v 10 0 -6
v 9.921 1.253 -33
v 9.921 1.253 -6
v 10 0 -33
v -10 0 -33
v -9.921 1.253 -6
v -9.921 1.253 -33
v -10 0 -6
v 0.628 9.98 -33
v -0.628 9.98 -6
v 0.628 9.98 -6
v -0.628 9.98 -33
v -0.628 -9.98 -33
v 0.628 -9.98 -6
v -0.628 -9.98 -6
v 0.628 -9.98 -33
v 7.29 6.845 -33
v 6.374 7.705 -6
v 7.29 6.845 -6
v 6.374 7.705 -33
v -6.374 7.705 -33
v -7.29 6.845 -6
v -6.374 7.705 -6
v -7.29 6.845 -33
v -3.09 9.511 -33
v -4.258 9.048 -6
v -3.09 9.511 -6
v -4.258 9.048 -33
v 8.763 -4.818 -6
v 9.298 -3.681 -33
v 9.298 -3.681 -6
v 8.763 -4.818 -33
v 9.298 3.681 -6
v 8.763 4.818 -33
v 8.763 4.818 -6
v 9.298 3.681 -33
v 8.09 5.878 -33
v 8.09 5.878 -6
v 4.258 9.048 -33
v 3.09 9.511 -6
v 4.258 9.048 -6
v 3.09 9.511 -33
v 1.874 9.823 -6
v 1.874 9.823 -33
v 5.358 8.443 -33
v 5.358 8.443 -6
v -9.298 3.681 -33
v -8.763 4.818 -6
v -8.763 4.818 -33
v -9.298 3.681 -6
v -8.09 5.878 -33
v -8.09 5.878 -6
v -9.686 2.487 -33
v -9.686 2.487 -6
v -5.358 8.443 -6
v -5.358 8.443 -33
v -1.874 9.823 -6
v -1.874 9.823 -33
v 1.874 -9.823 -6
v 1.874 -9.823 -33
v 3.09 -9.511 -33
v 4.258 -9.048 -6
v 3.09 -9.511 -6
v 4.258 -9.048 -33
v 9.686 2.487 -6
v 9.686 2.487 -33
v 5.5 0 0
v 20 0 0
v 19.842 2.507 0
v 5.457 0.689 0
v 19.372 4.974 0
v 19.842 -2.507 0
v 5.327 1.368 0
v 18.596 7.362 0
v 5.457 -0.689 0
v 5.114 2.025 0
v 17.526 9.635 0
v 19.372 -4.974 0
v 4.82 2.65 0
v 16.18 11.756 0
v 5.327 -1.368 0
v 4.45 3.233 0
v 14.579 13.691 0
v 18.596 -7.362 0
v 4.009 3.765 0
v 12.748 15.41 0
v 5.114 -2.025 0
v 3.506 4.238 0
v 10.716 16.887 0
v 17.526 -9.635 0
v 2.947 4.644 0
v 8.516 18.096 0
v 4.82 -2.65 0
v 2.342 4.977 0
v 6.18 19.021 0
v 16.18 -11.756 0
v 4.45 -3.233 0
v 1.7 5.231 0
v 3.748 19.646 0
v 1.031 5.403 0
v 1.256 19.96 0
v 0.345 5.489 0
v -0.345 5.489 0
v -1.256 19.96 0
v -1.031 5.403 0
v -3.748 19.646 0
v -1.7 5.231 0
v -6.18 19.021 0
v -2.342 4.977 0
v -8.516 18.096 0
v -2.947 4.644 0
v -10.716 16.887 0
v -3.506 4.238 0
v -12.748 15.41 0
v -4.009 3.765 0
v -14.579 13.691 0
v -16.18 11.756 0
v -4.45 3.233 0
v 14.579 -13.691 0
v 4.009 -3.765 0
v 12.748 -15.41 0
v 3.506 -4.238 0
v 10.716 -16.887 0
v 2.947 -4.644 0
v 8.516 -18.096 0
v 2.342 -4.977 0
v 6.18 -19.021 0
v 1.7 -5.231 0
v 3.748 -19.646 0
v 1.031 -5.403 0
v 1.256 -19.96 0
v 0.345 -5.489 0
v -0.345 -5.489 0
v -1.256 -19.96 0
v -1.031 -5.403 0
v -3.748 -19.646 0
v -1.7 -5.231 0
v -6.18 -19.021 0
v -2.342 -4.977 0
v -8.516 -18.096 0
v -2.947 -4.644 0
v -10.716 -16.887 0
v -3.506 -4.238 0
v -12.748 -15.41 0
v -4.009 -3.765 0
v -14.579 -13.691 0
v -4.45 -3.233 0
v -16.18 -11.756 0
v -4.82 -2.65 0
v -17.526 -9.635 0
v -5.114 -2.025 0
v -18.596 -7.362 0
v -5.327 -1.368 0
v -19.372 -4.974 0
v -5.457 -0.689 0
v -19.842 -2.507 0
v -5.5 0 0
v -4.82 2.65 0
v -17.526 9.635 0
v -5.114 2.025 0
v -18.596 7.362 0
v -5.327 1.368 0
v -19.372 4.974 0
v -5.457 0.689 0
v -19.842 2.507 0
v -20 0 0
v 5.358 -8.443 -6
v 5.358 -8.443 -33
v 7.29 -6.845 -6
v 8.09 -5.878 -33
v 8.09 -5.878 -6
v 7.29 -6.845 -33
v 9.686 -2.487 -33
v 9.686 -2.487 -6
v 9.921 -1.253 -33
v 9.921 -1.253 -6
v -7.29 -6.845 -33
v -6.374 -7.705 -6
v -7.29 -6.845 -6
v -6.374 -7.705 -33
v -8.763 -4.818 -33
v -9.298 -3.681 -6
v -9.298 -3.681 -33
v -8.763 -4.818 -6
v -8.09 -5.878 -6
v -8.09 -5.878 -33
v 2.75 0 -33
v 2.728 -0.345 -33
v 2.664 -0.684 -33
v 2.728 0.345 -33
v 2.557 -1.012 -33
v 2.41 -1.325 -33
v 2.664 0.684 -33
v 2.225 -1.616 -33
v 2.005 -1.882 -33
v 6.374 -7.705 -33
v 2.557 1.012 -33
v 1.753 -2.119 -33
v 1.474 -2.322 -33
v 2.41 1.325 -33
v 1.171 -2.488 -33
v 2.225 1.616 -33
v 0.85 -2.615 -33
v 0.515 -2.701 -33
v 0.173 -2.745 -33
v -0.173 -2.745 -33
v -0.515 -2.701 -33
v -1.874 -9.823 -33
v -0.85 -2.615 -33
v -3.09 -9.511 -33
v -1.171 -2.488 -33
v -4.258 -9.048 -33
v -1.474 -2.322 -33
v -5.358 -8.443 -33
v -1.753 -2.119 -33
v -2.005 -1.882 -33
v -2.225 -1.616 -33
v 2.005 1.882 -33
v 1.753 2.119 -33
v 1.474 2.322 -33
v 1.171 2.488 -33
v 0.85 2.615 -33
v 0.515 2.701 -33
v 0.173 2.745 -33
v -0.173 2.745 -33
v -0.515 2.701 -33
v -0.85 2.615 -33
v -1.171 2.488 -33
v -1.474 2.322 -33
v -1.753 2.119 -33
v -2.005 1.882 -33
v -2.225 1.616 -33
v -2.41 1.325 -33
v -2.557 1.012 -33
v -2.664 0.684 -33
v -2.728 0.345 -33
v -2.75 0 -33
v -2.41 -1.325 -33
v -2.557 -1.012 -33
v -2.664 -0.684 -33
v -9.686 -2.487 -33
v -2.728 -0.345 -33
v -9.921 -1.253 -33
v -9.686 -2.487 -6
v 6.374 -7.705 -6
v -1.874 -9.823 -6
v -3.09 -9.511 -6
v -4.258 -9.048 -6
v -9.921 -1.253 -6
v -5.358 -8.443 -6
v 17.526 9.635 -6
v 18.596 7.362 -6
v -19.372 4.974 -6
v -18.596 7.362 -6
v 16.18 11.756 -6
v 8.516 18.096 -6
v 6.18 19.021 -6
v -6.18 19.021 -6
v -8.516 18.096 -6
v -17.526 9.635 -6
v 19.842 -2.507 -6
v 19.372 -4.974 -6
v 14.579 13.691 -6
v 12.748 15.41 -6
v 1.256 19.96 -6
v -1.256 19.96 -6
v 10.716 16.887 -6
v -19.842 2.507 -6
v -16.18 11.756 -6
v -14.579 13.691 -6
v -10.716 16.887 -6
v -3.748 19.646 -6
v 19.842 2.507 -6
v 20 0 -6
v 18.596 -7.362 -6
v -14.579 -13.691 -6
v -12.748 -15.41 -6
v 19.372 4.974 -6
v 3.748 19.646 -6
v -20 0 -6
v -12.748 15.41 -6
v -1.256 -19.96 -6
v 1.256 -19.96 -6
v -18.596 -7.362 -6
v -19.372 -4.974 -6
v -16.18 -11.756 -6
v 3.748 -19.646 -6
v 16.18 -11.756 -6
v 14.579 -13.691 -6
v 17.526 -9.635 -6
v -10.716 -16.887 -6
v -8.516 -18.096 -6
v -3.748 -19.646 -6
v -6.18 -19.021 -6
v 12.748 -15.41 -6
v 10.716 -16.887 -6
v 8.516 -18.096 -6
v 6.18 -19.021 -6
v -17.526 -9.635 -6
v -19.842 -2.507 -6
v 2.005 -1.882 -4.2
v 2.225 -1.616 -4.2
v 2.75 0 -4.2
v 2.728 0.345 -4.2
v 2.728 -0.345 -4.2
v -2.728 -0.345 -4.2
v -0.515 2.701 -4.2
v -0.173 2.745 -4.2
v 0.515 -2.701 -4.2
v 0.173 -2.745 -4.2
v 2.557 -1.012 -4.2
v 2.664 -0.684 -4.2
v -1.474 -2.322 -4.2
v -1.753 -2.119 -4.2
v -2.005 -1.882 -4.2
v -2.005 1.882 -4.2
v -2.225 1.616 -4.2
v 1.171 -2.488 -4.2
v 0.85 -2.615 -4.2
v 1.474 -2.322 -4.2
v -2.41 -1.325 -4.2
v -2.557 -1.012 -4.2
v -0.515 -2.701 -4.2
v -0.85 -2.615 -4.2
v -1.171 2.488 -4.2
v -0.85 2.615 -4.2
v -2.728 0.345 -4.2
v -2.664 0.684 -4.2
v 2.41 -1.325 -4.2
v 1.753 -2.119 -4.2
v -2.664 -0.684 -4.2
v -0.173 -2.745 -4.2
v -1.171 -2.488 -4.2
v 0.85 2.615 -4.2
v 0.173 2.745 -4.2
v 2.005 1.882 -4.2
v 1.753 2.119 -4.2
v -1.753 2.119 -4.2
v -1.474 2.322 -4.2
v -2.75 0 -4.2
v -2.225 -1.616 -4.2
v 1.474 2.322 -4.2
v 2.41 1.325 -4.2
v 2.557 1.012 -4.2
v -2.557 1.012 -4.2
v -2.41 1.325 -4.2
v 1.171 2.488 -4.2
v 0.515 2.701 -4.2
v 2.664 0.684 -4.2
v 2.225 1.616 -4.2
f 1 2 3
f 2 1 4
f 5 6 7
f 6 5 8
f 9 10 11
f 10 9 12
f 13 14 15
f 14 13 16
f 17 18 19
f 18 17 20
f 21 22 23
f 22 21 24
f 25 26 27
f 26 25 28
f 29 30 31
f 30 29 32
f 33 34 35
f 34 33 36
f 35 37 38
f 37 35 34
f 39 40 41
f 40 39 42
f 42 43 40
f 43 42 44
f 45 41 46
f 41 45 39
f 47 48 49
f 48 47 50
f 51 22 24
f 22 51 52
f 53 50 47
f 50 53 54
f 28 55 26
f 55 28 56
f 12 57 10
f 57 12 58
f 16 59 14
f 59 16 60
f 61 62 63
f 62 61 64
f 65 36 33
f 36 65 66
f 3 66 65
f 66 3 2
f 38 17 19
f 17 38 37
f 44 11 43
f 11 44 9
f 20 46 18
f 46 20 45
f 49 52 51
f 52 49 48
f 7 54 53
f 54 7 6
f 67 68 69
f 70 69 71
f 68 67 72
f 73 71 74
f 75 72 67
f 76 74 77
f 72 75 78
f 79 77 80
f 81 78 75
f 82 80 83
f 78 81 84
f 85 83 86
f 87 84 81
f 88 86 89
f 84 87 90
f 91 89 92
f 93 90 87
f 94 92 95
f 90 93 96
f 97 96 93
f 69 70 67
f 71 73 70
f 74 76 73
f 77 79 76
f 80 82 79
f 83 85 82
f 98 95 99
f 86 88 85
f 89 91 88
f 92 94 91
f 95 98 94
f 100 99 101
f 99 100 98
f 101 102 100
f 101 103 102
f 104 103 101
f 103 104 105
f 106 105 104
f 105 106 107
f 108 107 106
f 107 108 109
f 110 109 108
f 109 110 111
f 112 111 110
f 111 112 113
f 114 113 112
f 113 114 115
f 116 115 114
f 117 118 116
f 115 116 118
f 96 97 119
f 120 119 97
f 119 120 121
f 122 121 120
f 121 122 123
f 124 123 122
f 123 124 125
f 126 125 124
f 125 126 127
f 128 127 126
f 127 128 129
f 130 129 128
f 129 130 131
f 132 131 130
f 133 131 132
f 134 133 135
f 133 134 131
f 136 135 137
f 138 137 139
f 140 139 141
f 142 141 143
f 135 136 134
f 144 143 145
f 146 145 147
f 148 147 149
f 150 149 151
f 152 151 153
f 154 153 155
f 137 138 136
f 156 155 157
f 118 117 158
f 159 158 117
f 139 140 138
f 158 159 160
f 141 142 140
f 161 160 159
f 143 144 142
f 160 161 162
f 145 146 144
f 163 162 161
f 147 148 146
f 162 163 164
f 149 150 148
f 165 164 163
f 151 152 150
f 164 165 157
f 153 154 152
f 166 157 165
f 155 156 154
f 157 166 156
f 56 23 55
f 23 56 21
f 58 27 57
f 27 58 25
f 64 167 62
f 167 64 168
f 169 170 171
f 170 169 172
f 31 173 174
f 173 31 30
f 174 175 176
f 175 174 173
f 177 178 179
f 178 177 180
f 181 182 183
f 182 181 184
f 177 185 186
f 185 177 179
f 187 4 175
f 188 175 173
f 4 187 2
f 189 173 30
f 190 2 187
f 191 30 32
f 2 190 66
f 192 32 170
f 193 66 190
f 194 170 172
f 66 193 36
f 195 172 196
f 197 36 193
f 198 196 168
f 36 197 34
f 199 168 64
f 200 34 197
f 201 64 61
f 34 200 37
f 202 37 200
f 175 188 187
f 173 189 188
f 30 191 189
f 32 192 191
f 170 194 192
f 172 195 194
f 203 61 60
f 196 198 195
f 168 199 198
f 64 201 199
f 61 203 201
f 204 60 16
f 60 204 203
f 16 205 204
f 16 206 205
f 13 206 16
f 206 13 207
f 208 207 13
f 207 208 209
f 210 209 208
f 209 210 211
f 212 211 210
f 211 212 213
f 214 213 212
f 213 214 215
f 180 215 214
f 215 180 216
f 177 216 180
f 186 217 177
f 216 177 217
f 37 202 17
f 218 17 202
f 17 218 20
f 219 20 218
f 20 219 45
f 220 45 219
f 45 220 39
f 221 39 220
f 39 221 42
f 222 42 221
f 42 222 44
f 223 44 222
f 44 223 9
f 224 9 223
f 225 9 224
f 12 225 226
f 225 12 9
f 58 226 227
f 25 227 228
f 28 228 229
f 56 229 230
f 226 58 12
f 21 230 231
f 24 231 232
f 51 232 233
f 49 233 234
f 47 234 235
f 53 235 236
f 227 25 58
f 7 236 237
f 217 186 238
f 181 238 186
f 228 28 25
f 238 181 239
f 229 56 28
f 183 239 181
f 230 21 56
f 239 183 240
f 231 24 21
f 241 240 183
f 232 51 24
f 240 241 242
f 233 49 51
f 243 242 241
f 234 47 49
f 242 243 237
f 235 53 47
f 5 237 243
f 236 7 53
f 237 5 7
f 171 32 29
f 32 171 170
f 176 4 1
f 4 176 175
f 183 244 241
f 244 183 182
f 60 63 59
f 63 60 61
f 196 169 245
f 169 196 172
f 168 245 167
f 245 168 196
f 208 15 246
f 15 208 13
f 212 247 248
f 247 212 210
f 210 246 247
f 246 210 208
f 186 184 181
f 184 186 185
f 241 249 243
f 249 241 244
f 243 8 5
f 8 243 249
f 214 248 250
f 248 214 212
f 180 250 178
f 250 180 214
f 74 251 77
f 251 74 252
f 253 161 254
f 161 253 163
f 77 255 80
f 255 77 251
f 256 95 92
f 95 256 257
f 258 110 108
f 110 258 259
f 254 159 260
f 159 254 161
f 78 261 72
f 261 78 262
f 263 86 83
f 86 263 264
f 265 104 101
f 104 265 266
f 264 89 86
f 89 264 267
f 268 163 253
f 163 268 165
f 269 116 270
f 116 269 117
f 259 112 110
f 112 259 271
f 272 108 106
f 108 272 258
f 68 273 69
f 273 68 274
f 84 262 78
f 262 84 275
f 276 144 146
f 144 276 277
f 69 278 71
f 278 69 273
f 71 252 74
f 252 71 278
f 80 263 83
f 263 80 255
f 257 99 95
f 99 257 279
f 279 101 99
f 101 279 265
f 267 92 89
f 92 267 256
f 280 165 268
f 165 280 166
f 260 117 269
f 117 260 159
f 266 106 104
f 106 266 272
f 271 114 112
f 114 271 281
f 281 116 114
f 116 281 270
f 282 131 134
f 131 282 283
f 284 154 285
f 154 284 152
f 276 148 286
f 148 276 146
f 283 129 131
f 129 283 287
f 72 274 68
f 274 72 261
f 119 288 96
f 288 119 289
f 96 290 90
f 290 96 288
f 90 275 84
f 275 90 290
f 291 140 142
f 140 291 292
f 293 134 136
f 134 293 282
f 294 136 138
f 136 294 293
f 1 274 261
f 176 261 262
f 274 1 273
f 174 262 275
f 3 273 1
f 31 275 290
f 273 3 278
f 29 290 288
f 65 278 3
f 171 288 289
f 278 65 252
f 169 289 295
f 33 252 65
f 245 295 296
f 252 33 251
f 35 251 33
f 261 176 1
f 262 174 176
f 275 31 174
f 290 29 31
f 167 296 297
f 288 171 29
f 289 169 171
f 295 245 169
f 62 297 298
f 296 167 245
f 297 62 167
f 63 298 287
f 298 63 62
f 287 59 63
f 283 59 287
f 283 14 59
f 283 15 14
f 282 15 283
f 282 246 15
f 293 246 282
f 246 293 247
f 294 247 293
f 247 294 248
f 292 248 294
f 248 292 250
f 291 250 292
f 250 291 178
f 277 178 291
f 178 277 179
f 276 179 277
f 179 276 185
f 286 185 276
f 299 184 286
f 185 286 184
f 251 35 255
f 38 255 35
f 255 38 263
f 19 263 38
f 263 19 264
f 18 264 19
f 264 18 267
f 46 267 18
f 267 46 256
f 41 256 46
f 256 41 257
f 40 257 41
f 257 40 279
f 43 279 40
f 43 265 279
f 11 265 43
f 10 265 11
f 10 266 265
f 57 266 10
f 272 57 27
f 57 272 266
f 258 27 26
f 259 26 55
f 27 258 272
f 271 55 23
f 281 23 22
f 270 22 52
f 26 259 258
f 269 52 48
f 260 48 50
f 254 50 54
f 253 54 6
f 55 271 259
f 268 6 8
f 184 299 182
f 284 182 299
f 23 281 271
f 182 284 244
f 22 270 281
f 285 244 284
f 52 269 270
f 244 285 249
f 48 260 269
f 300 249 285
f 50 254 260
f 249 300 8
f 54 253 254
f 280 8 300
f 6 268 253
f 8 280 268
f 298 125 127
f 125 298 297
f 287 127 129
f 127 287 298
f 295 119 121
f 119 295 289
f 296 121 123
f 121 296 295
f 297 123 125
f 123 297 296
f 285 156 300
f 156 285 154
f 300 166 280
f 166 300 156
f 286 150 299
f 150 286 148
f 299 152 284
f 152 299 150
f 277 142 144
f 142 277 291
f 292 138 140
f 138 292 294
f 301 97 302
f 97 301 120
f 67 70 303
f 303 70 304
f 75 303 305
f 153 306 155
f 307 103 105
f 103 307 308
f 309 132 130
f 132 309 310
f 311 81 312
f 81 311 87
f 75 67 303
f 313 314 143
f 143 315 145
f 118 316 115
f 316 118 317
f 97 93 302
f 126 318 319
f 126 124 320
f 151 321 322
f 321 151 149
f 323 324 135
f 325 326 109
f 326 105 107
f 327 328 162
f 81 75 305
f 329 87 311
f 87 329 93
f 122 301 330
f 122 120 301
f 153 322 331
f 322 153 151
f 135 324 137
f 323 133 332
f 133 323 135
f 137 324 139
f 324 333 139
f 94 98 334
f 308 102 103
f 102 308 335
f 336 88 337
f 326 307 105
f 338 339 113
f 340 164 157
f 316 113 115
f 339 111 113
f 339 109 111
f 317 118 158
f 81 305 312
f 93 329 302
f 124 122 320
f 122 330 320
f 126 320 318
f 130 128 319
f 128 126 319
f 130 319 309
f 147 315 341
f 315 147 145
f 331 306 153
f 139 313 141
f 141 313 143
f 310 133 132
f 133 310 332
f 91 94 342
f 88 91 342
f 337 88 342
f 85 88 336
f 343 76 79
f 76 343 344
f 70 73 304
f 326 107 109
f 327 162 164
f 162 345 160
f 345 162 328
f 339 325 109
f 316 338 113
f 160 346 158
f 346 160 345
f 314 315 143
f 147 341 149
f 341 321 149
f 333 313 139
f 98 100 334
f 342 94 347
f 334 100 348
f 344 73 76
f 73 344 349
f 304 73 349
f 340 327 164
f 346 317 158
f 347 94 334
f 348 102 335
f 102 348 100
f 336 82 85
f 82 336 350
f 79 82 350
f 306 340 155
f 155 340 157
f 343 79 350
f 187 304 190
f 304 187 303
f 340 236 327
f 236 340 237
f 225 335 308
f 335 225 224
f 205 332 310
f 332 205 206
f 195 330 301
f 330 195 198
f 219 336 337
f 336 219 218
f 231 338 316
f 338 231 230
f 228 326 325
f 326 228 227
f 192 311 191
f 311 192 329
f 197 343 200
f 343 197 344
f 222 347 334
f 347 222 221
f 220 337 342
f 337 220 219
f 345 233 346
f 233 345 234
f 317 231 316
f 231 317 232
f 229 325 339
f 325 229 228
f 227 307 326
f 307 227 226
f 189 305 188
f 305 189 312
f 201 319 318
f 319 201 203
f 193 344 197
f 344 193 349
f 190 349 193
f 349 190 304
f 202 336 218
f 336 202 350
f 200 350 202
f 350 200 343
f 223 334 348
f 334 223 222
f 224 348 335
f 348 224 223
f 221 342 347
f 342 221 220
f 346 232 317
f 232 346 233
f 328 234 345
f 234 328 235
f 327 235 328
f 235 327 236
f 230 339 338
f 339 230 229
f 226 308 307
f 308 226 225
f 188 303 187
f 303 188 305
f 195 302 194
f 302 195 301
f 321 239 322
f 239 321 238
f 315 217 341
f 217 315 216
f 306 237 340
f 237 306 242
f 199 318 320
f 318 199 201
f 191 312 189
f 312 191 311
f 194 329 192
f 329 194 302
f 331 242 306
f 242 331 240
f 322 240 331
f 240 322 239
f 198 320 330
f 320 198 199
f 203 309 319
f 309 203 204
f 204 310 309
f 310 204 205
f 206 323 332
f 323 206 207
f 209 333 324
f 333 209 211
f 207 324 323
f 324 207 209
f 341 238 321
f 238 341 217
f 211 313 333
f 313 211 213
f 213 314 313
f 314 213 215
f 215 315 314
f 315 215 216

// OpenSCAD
$fn = 50;


difference() {
	union() {
		translate(v = [0, 0, -33.0000000000]) {
			cylinder(h = 33, r = 10.0000000000);
		}
		translate(v = [0, 0, -6.0000000000]) {
			cylinder(h = 6, r = 20.0000000000);
		}
	}
	union() {
		translate(v = [0, 0, 0]) {
			rotate(a = [0, 0, 0]) {
				difference() {
					union() {
						#translate(v = [0, 0, -33.0000000000]) {
							cylinder(h = 33, r = 2.2500000000);
						}
						#translate(v = [0, 0, -4.2000000000]) {
							cylinder(h = 4.2000000000, r = 10.0000000000, r1 = 2.7500000000, r2 = 5.5000000000);
						}
						#translate(v = [0, 0, -33.0000000000]) {
							cylinder(h = 33, r = 2.7500000000);
						}
						#translate(v = [0, 0, -33.0000000000]) {
							cylinder(h = 33, r = 2.2500000000);
						}
					}
					union();
				}
			}
		}
	}
}
